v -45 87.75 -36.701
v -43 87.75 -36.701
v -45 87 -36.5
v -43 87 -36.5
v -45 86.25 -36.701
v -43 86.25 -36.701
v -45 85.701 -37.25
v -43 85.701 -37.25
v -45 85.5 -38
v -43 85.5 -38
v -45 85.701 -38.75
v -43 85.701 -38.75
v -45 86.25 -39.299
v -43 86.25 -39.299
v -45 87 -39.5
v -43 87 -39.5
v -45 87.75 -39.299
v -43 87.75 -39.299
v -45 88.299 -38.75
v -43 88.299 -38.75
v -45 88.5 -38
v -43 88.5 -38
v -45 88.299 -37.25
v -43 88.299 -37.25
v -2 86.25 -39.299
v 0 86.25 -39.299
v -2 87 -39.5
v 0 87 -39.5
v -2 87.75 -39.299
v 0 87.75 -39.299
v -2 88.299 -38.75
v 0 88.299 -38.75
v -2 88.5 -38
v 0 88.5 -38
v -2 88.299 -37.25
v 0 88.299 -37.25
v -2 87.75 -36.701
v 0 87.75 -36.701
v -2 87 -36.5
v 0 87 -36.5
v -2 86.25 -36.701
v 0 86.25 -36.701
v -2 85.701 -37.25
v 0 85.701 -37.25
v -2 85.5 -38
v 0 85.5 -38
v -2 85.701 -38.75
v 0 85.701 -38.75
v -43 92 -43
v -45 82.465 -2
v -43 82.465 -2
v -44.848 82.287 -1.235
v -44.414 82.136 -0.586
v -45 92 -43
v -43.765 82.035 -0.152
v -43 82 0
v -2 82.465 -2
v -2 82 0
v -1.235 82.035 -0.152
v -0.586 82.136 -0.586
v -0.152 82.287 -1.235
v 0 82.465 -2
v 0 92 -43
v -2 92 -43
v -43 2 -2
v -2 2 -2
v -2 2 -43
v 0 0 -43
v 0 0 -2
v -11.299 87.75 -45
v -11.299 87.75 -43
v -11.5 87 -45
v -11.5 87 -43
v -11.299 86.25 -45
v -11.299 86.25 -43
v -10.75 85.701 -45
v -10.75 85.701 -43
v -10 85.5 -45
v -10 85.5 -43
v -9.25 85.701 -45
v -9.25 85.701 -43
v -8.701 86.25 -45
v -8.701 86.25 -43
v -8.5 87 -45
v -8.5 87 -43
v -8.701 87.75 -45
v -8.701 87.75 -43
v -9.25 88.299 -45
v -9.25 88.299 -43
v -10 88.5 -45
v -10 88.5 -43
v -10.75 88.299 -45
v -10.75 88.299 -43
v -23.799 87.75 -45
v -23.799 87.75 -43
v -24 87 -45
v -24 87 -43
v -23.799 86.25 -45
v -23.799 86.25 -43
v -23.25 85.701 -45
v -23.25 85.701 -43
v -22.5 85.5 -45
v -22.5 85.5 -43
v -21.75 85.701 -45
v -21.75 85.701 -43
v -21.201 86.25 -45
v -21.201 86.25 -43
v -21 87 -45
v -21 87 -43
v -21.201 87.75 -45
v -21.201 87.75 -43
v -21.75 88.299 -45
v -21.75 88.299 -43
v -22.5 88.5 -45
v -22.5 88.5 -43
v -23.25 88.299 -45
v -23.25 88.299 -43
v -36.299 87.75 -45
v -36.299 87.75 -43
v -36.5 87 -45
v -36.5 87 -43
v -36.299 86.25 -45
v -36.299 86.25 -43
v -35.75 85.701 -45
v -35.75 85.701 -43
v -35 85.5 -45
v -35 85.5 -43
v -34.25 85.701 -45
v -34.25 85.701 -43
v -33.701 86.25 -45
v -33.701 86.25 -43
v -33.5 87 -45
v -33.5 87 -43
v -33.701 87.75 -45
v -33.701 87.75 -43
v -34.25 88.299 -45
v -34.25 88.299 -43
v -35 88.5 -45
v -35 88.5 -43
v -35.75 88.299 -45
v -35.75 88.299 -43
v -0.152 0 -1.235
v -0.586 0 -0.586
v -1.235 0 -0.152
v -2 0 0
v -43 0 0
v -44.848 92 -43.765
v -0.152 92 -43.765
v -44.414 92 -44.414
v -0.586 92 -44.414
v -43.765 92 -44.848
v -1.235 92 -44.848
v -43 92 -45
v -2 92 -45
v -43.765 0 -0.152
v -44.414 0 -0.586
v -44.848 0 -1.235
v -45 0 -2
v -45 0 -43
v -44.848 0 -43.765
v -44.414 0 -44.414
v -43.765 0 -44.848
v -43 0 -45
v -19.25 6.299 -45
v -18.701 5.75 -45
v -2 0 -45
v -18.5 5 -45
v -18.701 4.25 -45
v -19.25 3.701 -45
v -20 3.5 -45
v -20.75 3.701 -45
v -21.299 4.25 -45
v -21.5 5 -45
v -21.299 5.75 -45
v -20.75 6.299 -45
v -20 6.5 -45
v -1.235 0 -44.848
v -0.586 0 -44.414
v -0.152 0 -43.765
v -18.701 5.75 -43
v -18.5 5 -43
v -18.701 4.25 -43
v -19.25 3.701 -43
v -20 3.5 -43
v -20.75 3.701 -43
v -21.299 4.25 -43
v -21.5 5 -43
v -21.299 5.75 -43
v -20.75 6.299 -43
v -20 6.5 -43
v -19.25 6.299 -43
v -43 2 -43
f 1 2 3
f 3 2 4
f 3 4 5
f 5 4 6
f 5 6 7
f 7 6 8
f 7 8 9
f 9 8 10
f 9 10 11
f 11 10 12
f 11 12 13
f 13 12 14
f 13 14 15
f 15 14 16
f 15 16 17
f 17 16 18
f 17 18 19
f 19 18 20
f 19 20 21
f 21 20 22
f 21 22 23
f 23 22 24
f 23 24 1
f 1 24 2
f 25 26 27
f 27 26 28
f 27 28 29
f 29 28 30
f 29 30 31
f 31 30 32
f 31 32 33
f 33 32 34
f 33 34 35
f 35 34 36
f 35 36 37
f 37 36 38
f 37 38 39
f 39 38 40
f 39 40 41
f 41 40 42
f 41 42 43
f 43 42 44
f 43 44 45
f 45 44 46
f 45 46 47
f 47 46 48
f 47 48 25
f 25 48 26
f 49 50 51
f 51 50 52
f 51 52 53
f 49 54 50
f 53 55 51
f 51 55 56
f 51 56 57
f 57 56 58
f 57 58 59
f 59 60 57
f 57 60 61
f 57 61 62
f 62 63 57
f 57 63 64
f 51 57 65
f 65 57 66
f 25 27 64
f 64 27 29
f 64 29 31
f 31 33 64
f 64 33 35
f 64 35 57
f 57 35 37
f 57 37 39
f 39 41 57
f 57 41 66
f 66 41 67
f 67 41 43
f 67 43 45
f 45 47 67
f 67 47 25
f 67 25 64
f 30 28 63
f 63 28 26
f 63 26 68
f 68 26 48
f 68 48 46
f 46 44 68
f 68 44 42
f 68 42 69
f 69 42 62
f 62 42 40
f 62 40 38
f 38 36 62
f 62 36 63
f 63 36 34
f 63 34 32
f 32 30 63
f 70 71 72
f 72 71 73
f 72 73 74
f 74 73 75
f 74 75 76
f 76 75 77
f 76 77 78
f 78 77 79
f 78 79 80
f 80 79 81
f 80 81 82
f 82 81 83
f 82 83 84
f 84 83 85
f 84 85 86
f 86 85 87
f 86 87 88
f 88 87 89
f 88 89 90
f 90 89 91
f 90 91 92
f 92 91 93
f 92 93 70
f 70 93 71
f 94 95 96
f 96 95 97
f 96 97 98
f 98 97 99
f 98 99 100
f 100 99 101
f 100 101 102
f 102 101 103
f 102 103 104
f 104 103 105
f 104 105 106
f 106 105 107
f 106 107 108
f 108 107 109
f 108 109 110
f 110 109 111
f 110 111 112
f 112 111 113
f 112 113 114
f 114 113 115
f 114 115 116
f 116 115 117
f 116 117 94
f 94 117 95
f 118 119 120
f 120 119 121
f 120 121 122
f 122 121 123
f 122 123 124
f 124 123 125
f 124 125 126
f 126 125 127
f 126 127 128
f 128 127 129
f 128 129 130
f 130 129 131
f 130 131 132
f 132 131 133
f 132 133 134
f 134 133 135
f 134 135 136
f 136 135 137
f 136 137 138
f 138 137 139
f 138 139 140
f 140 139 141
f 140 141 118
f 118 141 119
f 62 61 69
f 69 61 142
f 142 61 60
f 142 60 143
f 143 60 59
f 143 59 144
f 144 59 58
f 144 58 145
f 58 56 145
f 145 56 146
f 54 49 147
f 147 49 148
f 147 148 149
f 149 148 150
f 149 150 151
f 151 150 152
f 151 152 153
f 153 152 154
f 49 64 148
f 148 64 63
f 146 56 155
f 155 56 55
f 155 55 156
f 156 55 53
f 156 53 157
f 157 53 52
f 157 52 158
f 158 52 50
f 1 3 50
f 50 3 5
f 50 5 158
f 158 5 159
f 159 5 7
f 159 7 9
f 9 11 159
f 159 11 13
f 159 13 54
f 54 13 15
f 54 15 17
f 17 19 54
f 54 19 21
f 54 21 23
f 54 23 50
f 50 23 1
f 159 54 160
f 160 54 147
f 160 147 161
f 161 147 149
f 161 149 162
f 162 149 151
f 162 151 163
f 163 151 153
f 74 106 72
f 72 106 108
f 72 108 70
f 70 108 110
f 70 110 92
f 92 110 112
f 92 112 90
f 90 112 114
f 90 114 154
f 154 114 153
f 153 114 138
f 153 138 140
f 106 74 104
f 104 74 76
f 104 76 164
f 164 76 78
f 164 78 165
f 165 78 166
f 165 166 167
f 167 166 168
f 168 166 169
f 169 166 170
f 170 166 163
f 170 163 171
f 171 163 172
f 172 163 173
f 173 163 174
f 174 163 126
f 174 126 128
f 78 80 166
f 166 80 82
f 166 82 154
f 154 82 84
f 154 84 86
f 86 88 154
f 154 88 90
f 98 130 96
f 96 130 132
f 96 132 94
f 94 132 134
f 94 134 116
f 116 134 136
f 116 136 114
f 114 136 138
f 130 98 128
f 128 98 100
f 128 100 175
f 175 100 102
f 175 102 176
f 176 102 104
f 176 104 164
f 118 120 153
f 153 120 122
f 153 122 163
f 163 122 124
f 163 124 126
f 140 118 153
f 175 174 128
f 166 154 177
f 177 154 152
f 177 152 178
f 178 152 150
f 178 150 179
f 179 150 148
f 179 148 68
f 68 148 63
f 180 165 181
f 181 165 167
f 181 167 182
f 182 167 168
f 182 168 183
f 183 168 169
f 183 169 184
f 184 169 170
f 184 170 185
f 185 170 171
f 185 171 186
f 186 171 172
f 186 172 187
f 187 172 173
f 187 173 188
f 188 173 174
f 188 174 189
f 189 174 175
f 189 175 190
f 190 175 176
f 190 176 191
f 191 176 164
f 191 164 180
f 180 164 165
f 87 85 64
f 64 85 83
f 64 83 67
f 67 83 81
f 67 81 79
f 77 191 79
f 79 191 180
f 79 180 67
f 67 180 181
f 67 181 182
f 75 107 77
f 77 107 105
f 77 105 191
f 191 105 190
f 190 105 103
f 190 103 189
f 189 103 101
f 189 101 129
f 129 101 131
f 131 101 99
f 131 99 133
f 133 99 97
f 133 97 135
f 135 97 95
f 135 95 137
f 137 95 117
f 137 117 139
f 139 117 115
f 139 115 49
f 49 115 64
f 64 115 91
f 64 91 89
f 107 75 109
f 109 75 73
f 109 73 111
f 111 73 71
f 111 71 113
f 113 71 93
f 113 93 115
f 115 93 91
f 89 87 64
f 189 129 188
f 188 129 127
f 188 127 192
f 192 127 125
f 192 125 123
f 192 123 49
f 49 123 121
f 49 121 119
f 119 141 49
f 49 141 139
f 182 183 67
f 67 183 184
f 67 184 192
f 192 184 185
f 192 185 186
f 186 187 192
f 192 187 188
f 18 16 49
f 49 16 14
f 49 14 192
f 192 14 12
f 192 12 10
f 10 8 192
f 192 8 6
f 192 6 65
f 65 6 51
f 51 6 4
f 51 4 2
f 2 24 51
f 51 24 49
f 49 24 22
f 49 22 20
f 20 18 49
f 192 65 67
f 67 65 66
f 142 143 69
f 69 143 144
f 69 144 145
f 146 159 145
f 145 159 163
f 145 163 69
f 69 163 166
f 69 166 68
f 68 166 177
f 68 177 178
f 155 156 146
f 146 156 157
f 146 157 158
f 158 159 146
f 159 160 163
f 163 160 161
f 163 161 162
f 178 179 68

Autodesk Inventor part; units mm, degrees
ref_plane "YZ Plane" through (0, 0, 0) normal (1, 0, 0) x (0, 1, 0)
ref_plane "XZ Plane" through (0, 0, 0) normal (0, 1, 0) x (-1, 0, 0)
ref_plane "XY Plane" through (0, 0, 0) normal (0, 0, 1) x (1, 0, 0)
sketch "Sketch1" plane through (0, 0, 0) normal (0, 1, 0) x (-1, 0, 0)
  line L0 (0, 0) -> (45, 0)
  line L1 (45, 0) -> (45, -45)
  line L2 (45, -45) -> (0, -45)
  line L3 (0, -45) -> (0, 0)
  dimension "d0" = 45
  dimension "d1" = 45
extrude "Extrusion1" add sketch "Sketch1" along normal blind 2
sketch "Sketch2" plane through (0, 2, 0) normal (0, 1, 0) x (1, 0, 0)
  line L0 (-45, 0) -> (0, 0) projected
  line L1 (-22.5, 0) -> (-22.5, 45)
  line L2 (0, 45) -> (-45, 45) projected
  line L3 (0, 0) -> (0, 45) projected
  line L4 (0, 22.5) -> (-45, 22.5)
  line L5 (-45, 45) -> (-45, 0) projected
  line L6 (-43, 2) -> (-2, 2)
  line L7 (-2, 2) -> (-2, 43)
  line L8 (-2, 43) -> (-43, 43)
  line L9 (-43, 43) -> (-43, 2)
  point P0 (-43, 22.5)
  point P1 (-22.5, 43)
  dimension "d10" = 3
  dimension "d4" = 41
  dimension "d5" = 41
extrude "Extrusion2" add sketch "Sketch2" along normal blind 90 contours L5 L4 L9 L6 L1 L0 | L1 L6 L7 L4 L3 L0 | L5 L2 L1 L8 L9 L4 | L4 L7 L8 L1 L2 L3
sketch "Sketch3" plane through (0, 0, -45) normal (0, 0, -1) x (-1, 0, 0)
  line L0 (45, 0) -> (45, 92) projected
  line L1 (45, 0) -> (20, 0)
  line L2 (20, 0) -> (20, 5)
  line L3 (20, 5) -> (45, 5)
  line L4 (45, 5) -> (45, 0)
  circle A0 centre (20, 5) radius 1.5
  point P0 (0, 0)
  dimension "d8" = 25
  dimension "d9" = 5
  dimension "d10" = 3
extrude "Extrusion3" cut sketch "Sketch3" against normal blind 5 contours A0 L2 L3 | L3 L2 A0
fillet "Fillet1" radius 2 4 edges at (0, 46, -45) (-45, 46, -45) (-45, 46, 0) (0, 46, 0)
sketch "Sketch5" plane through (-43, 2, -43) normal (0, 0, 1) x (1, 0, 0)
  line L0 (0, 90) -> (41, 90) projected
  line L1 (-2, 80) -> (20.5, 80)
  line L2 (20.5, 80) -> (20.5, 85)
  line L3 (20.5, 85) -> (-2, 85)
  line L4 (-2, 85) -> (-2, 80)
  line L5 (-2, 80) -> (8, 80)
  line L6 (8, 80) -> (8, 85)
  line L7 (8, 85) -> (-2, 85)
  line L8 (-2, 85) -> (-2, 80)
  line L9 (0, 90) -> (41, 90) projected
  line L10 (43, 80) -> (33, 80)
  line L11 (33, 80) -> (33, 85)
  line L12 (33, 85) -> (43, 85)
  line L13 (43, 85) -> (43, 80)
  circle A0 centre (8, 85) radius 1.5
  circle A1 centre (20.5, 85) radius 1.5
  circle A2 centre (33, 85) radius 1.5
  point P0 (43, -2)
  dimension "d19" = 22.5
  dimension "d20" = 5
  dimension "d21" = 10
  dimension "d22" = 5
  dimension "d23" = 10
  dimension "d24" = 5
  dimension "d25" = 3
  dimension "d26" = 3
  dimension "d27" = 3
extrude "Extrusion5" cut sketch "Sketch5" against normal blind 10 contours A0 L3 L6 | L6 L3 A0 | A0 L3 | A1 L3 L2 | L2 L3 A1 | A2 L12 L11 | L11 L12 A2
sketch "Sketch6" plane through (0, 0, -2) normal (1, 0, 0) x (0, 0, -1)
  line L0 (41, 92) -> (41, 0) projected
  line L1 (-2, 0) -> (-2, 92) projected
  line L2 (41, 92) -> (-2, 92)
  line L3 (-2, 92) -> (-2, 82)
  line L4 (-2, 82) -> (41, 92)
  dimension "d30" = 10
extrude "Extrusion6" cut sketch "Sketch6" against normal blind 90
sketch "Sketch7" plane through (-45, 0, -43) normal (-1, 0, 0) x (0, 0, 1)
  line L0 (0, 2) -> (0, 92) projected
  line L1 (0, 92) -> (5, 92)
  line L2 (5, 92) -> (5, 87)
  line L3 (5, 87) -> (0, 87)
  line L4 (0, 87) -> (0, 92)
  circle A0 centre (5, 87) radius 1.5
  point P0 (43, 0)
  dimension "d33" = 5
  dimension "d34" = 5
  dimension "d35" = 3
extrude "Extrusion7" cut sketch "Sketch7" against normal blind 90 contours A0 L2 L3 | L3 L2 A0
properties part number "reduced_turtle"
